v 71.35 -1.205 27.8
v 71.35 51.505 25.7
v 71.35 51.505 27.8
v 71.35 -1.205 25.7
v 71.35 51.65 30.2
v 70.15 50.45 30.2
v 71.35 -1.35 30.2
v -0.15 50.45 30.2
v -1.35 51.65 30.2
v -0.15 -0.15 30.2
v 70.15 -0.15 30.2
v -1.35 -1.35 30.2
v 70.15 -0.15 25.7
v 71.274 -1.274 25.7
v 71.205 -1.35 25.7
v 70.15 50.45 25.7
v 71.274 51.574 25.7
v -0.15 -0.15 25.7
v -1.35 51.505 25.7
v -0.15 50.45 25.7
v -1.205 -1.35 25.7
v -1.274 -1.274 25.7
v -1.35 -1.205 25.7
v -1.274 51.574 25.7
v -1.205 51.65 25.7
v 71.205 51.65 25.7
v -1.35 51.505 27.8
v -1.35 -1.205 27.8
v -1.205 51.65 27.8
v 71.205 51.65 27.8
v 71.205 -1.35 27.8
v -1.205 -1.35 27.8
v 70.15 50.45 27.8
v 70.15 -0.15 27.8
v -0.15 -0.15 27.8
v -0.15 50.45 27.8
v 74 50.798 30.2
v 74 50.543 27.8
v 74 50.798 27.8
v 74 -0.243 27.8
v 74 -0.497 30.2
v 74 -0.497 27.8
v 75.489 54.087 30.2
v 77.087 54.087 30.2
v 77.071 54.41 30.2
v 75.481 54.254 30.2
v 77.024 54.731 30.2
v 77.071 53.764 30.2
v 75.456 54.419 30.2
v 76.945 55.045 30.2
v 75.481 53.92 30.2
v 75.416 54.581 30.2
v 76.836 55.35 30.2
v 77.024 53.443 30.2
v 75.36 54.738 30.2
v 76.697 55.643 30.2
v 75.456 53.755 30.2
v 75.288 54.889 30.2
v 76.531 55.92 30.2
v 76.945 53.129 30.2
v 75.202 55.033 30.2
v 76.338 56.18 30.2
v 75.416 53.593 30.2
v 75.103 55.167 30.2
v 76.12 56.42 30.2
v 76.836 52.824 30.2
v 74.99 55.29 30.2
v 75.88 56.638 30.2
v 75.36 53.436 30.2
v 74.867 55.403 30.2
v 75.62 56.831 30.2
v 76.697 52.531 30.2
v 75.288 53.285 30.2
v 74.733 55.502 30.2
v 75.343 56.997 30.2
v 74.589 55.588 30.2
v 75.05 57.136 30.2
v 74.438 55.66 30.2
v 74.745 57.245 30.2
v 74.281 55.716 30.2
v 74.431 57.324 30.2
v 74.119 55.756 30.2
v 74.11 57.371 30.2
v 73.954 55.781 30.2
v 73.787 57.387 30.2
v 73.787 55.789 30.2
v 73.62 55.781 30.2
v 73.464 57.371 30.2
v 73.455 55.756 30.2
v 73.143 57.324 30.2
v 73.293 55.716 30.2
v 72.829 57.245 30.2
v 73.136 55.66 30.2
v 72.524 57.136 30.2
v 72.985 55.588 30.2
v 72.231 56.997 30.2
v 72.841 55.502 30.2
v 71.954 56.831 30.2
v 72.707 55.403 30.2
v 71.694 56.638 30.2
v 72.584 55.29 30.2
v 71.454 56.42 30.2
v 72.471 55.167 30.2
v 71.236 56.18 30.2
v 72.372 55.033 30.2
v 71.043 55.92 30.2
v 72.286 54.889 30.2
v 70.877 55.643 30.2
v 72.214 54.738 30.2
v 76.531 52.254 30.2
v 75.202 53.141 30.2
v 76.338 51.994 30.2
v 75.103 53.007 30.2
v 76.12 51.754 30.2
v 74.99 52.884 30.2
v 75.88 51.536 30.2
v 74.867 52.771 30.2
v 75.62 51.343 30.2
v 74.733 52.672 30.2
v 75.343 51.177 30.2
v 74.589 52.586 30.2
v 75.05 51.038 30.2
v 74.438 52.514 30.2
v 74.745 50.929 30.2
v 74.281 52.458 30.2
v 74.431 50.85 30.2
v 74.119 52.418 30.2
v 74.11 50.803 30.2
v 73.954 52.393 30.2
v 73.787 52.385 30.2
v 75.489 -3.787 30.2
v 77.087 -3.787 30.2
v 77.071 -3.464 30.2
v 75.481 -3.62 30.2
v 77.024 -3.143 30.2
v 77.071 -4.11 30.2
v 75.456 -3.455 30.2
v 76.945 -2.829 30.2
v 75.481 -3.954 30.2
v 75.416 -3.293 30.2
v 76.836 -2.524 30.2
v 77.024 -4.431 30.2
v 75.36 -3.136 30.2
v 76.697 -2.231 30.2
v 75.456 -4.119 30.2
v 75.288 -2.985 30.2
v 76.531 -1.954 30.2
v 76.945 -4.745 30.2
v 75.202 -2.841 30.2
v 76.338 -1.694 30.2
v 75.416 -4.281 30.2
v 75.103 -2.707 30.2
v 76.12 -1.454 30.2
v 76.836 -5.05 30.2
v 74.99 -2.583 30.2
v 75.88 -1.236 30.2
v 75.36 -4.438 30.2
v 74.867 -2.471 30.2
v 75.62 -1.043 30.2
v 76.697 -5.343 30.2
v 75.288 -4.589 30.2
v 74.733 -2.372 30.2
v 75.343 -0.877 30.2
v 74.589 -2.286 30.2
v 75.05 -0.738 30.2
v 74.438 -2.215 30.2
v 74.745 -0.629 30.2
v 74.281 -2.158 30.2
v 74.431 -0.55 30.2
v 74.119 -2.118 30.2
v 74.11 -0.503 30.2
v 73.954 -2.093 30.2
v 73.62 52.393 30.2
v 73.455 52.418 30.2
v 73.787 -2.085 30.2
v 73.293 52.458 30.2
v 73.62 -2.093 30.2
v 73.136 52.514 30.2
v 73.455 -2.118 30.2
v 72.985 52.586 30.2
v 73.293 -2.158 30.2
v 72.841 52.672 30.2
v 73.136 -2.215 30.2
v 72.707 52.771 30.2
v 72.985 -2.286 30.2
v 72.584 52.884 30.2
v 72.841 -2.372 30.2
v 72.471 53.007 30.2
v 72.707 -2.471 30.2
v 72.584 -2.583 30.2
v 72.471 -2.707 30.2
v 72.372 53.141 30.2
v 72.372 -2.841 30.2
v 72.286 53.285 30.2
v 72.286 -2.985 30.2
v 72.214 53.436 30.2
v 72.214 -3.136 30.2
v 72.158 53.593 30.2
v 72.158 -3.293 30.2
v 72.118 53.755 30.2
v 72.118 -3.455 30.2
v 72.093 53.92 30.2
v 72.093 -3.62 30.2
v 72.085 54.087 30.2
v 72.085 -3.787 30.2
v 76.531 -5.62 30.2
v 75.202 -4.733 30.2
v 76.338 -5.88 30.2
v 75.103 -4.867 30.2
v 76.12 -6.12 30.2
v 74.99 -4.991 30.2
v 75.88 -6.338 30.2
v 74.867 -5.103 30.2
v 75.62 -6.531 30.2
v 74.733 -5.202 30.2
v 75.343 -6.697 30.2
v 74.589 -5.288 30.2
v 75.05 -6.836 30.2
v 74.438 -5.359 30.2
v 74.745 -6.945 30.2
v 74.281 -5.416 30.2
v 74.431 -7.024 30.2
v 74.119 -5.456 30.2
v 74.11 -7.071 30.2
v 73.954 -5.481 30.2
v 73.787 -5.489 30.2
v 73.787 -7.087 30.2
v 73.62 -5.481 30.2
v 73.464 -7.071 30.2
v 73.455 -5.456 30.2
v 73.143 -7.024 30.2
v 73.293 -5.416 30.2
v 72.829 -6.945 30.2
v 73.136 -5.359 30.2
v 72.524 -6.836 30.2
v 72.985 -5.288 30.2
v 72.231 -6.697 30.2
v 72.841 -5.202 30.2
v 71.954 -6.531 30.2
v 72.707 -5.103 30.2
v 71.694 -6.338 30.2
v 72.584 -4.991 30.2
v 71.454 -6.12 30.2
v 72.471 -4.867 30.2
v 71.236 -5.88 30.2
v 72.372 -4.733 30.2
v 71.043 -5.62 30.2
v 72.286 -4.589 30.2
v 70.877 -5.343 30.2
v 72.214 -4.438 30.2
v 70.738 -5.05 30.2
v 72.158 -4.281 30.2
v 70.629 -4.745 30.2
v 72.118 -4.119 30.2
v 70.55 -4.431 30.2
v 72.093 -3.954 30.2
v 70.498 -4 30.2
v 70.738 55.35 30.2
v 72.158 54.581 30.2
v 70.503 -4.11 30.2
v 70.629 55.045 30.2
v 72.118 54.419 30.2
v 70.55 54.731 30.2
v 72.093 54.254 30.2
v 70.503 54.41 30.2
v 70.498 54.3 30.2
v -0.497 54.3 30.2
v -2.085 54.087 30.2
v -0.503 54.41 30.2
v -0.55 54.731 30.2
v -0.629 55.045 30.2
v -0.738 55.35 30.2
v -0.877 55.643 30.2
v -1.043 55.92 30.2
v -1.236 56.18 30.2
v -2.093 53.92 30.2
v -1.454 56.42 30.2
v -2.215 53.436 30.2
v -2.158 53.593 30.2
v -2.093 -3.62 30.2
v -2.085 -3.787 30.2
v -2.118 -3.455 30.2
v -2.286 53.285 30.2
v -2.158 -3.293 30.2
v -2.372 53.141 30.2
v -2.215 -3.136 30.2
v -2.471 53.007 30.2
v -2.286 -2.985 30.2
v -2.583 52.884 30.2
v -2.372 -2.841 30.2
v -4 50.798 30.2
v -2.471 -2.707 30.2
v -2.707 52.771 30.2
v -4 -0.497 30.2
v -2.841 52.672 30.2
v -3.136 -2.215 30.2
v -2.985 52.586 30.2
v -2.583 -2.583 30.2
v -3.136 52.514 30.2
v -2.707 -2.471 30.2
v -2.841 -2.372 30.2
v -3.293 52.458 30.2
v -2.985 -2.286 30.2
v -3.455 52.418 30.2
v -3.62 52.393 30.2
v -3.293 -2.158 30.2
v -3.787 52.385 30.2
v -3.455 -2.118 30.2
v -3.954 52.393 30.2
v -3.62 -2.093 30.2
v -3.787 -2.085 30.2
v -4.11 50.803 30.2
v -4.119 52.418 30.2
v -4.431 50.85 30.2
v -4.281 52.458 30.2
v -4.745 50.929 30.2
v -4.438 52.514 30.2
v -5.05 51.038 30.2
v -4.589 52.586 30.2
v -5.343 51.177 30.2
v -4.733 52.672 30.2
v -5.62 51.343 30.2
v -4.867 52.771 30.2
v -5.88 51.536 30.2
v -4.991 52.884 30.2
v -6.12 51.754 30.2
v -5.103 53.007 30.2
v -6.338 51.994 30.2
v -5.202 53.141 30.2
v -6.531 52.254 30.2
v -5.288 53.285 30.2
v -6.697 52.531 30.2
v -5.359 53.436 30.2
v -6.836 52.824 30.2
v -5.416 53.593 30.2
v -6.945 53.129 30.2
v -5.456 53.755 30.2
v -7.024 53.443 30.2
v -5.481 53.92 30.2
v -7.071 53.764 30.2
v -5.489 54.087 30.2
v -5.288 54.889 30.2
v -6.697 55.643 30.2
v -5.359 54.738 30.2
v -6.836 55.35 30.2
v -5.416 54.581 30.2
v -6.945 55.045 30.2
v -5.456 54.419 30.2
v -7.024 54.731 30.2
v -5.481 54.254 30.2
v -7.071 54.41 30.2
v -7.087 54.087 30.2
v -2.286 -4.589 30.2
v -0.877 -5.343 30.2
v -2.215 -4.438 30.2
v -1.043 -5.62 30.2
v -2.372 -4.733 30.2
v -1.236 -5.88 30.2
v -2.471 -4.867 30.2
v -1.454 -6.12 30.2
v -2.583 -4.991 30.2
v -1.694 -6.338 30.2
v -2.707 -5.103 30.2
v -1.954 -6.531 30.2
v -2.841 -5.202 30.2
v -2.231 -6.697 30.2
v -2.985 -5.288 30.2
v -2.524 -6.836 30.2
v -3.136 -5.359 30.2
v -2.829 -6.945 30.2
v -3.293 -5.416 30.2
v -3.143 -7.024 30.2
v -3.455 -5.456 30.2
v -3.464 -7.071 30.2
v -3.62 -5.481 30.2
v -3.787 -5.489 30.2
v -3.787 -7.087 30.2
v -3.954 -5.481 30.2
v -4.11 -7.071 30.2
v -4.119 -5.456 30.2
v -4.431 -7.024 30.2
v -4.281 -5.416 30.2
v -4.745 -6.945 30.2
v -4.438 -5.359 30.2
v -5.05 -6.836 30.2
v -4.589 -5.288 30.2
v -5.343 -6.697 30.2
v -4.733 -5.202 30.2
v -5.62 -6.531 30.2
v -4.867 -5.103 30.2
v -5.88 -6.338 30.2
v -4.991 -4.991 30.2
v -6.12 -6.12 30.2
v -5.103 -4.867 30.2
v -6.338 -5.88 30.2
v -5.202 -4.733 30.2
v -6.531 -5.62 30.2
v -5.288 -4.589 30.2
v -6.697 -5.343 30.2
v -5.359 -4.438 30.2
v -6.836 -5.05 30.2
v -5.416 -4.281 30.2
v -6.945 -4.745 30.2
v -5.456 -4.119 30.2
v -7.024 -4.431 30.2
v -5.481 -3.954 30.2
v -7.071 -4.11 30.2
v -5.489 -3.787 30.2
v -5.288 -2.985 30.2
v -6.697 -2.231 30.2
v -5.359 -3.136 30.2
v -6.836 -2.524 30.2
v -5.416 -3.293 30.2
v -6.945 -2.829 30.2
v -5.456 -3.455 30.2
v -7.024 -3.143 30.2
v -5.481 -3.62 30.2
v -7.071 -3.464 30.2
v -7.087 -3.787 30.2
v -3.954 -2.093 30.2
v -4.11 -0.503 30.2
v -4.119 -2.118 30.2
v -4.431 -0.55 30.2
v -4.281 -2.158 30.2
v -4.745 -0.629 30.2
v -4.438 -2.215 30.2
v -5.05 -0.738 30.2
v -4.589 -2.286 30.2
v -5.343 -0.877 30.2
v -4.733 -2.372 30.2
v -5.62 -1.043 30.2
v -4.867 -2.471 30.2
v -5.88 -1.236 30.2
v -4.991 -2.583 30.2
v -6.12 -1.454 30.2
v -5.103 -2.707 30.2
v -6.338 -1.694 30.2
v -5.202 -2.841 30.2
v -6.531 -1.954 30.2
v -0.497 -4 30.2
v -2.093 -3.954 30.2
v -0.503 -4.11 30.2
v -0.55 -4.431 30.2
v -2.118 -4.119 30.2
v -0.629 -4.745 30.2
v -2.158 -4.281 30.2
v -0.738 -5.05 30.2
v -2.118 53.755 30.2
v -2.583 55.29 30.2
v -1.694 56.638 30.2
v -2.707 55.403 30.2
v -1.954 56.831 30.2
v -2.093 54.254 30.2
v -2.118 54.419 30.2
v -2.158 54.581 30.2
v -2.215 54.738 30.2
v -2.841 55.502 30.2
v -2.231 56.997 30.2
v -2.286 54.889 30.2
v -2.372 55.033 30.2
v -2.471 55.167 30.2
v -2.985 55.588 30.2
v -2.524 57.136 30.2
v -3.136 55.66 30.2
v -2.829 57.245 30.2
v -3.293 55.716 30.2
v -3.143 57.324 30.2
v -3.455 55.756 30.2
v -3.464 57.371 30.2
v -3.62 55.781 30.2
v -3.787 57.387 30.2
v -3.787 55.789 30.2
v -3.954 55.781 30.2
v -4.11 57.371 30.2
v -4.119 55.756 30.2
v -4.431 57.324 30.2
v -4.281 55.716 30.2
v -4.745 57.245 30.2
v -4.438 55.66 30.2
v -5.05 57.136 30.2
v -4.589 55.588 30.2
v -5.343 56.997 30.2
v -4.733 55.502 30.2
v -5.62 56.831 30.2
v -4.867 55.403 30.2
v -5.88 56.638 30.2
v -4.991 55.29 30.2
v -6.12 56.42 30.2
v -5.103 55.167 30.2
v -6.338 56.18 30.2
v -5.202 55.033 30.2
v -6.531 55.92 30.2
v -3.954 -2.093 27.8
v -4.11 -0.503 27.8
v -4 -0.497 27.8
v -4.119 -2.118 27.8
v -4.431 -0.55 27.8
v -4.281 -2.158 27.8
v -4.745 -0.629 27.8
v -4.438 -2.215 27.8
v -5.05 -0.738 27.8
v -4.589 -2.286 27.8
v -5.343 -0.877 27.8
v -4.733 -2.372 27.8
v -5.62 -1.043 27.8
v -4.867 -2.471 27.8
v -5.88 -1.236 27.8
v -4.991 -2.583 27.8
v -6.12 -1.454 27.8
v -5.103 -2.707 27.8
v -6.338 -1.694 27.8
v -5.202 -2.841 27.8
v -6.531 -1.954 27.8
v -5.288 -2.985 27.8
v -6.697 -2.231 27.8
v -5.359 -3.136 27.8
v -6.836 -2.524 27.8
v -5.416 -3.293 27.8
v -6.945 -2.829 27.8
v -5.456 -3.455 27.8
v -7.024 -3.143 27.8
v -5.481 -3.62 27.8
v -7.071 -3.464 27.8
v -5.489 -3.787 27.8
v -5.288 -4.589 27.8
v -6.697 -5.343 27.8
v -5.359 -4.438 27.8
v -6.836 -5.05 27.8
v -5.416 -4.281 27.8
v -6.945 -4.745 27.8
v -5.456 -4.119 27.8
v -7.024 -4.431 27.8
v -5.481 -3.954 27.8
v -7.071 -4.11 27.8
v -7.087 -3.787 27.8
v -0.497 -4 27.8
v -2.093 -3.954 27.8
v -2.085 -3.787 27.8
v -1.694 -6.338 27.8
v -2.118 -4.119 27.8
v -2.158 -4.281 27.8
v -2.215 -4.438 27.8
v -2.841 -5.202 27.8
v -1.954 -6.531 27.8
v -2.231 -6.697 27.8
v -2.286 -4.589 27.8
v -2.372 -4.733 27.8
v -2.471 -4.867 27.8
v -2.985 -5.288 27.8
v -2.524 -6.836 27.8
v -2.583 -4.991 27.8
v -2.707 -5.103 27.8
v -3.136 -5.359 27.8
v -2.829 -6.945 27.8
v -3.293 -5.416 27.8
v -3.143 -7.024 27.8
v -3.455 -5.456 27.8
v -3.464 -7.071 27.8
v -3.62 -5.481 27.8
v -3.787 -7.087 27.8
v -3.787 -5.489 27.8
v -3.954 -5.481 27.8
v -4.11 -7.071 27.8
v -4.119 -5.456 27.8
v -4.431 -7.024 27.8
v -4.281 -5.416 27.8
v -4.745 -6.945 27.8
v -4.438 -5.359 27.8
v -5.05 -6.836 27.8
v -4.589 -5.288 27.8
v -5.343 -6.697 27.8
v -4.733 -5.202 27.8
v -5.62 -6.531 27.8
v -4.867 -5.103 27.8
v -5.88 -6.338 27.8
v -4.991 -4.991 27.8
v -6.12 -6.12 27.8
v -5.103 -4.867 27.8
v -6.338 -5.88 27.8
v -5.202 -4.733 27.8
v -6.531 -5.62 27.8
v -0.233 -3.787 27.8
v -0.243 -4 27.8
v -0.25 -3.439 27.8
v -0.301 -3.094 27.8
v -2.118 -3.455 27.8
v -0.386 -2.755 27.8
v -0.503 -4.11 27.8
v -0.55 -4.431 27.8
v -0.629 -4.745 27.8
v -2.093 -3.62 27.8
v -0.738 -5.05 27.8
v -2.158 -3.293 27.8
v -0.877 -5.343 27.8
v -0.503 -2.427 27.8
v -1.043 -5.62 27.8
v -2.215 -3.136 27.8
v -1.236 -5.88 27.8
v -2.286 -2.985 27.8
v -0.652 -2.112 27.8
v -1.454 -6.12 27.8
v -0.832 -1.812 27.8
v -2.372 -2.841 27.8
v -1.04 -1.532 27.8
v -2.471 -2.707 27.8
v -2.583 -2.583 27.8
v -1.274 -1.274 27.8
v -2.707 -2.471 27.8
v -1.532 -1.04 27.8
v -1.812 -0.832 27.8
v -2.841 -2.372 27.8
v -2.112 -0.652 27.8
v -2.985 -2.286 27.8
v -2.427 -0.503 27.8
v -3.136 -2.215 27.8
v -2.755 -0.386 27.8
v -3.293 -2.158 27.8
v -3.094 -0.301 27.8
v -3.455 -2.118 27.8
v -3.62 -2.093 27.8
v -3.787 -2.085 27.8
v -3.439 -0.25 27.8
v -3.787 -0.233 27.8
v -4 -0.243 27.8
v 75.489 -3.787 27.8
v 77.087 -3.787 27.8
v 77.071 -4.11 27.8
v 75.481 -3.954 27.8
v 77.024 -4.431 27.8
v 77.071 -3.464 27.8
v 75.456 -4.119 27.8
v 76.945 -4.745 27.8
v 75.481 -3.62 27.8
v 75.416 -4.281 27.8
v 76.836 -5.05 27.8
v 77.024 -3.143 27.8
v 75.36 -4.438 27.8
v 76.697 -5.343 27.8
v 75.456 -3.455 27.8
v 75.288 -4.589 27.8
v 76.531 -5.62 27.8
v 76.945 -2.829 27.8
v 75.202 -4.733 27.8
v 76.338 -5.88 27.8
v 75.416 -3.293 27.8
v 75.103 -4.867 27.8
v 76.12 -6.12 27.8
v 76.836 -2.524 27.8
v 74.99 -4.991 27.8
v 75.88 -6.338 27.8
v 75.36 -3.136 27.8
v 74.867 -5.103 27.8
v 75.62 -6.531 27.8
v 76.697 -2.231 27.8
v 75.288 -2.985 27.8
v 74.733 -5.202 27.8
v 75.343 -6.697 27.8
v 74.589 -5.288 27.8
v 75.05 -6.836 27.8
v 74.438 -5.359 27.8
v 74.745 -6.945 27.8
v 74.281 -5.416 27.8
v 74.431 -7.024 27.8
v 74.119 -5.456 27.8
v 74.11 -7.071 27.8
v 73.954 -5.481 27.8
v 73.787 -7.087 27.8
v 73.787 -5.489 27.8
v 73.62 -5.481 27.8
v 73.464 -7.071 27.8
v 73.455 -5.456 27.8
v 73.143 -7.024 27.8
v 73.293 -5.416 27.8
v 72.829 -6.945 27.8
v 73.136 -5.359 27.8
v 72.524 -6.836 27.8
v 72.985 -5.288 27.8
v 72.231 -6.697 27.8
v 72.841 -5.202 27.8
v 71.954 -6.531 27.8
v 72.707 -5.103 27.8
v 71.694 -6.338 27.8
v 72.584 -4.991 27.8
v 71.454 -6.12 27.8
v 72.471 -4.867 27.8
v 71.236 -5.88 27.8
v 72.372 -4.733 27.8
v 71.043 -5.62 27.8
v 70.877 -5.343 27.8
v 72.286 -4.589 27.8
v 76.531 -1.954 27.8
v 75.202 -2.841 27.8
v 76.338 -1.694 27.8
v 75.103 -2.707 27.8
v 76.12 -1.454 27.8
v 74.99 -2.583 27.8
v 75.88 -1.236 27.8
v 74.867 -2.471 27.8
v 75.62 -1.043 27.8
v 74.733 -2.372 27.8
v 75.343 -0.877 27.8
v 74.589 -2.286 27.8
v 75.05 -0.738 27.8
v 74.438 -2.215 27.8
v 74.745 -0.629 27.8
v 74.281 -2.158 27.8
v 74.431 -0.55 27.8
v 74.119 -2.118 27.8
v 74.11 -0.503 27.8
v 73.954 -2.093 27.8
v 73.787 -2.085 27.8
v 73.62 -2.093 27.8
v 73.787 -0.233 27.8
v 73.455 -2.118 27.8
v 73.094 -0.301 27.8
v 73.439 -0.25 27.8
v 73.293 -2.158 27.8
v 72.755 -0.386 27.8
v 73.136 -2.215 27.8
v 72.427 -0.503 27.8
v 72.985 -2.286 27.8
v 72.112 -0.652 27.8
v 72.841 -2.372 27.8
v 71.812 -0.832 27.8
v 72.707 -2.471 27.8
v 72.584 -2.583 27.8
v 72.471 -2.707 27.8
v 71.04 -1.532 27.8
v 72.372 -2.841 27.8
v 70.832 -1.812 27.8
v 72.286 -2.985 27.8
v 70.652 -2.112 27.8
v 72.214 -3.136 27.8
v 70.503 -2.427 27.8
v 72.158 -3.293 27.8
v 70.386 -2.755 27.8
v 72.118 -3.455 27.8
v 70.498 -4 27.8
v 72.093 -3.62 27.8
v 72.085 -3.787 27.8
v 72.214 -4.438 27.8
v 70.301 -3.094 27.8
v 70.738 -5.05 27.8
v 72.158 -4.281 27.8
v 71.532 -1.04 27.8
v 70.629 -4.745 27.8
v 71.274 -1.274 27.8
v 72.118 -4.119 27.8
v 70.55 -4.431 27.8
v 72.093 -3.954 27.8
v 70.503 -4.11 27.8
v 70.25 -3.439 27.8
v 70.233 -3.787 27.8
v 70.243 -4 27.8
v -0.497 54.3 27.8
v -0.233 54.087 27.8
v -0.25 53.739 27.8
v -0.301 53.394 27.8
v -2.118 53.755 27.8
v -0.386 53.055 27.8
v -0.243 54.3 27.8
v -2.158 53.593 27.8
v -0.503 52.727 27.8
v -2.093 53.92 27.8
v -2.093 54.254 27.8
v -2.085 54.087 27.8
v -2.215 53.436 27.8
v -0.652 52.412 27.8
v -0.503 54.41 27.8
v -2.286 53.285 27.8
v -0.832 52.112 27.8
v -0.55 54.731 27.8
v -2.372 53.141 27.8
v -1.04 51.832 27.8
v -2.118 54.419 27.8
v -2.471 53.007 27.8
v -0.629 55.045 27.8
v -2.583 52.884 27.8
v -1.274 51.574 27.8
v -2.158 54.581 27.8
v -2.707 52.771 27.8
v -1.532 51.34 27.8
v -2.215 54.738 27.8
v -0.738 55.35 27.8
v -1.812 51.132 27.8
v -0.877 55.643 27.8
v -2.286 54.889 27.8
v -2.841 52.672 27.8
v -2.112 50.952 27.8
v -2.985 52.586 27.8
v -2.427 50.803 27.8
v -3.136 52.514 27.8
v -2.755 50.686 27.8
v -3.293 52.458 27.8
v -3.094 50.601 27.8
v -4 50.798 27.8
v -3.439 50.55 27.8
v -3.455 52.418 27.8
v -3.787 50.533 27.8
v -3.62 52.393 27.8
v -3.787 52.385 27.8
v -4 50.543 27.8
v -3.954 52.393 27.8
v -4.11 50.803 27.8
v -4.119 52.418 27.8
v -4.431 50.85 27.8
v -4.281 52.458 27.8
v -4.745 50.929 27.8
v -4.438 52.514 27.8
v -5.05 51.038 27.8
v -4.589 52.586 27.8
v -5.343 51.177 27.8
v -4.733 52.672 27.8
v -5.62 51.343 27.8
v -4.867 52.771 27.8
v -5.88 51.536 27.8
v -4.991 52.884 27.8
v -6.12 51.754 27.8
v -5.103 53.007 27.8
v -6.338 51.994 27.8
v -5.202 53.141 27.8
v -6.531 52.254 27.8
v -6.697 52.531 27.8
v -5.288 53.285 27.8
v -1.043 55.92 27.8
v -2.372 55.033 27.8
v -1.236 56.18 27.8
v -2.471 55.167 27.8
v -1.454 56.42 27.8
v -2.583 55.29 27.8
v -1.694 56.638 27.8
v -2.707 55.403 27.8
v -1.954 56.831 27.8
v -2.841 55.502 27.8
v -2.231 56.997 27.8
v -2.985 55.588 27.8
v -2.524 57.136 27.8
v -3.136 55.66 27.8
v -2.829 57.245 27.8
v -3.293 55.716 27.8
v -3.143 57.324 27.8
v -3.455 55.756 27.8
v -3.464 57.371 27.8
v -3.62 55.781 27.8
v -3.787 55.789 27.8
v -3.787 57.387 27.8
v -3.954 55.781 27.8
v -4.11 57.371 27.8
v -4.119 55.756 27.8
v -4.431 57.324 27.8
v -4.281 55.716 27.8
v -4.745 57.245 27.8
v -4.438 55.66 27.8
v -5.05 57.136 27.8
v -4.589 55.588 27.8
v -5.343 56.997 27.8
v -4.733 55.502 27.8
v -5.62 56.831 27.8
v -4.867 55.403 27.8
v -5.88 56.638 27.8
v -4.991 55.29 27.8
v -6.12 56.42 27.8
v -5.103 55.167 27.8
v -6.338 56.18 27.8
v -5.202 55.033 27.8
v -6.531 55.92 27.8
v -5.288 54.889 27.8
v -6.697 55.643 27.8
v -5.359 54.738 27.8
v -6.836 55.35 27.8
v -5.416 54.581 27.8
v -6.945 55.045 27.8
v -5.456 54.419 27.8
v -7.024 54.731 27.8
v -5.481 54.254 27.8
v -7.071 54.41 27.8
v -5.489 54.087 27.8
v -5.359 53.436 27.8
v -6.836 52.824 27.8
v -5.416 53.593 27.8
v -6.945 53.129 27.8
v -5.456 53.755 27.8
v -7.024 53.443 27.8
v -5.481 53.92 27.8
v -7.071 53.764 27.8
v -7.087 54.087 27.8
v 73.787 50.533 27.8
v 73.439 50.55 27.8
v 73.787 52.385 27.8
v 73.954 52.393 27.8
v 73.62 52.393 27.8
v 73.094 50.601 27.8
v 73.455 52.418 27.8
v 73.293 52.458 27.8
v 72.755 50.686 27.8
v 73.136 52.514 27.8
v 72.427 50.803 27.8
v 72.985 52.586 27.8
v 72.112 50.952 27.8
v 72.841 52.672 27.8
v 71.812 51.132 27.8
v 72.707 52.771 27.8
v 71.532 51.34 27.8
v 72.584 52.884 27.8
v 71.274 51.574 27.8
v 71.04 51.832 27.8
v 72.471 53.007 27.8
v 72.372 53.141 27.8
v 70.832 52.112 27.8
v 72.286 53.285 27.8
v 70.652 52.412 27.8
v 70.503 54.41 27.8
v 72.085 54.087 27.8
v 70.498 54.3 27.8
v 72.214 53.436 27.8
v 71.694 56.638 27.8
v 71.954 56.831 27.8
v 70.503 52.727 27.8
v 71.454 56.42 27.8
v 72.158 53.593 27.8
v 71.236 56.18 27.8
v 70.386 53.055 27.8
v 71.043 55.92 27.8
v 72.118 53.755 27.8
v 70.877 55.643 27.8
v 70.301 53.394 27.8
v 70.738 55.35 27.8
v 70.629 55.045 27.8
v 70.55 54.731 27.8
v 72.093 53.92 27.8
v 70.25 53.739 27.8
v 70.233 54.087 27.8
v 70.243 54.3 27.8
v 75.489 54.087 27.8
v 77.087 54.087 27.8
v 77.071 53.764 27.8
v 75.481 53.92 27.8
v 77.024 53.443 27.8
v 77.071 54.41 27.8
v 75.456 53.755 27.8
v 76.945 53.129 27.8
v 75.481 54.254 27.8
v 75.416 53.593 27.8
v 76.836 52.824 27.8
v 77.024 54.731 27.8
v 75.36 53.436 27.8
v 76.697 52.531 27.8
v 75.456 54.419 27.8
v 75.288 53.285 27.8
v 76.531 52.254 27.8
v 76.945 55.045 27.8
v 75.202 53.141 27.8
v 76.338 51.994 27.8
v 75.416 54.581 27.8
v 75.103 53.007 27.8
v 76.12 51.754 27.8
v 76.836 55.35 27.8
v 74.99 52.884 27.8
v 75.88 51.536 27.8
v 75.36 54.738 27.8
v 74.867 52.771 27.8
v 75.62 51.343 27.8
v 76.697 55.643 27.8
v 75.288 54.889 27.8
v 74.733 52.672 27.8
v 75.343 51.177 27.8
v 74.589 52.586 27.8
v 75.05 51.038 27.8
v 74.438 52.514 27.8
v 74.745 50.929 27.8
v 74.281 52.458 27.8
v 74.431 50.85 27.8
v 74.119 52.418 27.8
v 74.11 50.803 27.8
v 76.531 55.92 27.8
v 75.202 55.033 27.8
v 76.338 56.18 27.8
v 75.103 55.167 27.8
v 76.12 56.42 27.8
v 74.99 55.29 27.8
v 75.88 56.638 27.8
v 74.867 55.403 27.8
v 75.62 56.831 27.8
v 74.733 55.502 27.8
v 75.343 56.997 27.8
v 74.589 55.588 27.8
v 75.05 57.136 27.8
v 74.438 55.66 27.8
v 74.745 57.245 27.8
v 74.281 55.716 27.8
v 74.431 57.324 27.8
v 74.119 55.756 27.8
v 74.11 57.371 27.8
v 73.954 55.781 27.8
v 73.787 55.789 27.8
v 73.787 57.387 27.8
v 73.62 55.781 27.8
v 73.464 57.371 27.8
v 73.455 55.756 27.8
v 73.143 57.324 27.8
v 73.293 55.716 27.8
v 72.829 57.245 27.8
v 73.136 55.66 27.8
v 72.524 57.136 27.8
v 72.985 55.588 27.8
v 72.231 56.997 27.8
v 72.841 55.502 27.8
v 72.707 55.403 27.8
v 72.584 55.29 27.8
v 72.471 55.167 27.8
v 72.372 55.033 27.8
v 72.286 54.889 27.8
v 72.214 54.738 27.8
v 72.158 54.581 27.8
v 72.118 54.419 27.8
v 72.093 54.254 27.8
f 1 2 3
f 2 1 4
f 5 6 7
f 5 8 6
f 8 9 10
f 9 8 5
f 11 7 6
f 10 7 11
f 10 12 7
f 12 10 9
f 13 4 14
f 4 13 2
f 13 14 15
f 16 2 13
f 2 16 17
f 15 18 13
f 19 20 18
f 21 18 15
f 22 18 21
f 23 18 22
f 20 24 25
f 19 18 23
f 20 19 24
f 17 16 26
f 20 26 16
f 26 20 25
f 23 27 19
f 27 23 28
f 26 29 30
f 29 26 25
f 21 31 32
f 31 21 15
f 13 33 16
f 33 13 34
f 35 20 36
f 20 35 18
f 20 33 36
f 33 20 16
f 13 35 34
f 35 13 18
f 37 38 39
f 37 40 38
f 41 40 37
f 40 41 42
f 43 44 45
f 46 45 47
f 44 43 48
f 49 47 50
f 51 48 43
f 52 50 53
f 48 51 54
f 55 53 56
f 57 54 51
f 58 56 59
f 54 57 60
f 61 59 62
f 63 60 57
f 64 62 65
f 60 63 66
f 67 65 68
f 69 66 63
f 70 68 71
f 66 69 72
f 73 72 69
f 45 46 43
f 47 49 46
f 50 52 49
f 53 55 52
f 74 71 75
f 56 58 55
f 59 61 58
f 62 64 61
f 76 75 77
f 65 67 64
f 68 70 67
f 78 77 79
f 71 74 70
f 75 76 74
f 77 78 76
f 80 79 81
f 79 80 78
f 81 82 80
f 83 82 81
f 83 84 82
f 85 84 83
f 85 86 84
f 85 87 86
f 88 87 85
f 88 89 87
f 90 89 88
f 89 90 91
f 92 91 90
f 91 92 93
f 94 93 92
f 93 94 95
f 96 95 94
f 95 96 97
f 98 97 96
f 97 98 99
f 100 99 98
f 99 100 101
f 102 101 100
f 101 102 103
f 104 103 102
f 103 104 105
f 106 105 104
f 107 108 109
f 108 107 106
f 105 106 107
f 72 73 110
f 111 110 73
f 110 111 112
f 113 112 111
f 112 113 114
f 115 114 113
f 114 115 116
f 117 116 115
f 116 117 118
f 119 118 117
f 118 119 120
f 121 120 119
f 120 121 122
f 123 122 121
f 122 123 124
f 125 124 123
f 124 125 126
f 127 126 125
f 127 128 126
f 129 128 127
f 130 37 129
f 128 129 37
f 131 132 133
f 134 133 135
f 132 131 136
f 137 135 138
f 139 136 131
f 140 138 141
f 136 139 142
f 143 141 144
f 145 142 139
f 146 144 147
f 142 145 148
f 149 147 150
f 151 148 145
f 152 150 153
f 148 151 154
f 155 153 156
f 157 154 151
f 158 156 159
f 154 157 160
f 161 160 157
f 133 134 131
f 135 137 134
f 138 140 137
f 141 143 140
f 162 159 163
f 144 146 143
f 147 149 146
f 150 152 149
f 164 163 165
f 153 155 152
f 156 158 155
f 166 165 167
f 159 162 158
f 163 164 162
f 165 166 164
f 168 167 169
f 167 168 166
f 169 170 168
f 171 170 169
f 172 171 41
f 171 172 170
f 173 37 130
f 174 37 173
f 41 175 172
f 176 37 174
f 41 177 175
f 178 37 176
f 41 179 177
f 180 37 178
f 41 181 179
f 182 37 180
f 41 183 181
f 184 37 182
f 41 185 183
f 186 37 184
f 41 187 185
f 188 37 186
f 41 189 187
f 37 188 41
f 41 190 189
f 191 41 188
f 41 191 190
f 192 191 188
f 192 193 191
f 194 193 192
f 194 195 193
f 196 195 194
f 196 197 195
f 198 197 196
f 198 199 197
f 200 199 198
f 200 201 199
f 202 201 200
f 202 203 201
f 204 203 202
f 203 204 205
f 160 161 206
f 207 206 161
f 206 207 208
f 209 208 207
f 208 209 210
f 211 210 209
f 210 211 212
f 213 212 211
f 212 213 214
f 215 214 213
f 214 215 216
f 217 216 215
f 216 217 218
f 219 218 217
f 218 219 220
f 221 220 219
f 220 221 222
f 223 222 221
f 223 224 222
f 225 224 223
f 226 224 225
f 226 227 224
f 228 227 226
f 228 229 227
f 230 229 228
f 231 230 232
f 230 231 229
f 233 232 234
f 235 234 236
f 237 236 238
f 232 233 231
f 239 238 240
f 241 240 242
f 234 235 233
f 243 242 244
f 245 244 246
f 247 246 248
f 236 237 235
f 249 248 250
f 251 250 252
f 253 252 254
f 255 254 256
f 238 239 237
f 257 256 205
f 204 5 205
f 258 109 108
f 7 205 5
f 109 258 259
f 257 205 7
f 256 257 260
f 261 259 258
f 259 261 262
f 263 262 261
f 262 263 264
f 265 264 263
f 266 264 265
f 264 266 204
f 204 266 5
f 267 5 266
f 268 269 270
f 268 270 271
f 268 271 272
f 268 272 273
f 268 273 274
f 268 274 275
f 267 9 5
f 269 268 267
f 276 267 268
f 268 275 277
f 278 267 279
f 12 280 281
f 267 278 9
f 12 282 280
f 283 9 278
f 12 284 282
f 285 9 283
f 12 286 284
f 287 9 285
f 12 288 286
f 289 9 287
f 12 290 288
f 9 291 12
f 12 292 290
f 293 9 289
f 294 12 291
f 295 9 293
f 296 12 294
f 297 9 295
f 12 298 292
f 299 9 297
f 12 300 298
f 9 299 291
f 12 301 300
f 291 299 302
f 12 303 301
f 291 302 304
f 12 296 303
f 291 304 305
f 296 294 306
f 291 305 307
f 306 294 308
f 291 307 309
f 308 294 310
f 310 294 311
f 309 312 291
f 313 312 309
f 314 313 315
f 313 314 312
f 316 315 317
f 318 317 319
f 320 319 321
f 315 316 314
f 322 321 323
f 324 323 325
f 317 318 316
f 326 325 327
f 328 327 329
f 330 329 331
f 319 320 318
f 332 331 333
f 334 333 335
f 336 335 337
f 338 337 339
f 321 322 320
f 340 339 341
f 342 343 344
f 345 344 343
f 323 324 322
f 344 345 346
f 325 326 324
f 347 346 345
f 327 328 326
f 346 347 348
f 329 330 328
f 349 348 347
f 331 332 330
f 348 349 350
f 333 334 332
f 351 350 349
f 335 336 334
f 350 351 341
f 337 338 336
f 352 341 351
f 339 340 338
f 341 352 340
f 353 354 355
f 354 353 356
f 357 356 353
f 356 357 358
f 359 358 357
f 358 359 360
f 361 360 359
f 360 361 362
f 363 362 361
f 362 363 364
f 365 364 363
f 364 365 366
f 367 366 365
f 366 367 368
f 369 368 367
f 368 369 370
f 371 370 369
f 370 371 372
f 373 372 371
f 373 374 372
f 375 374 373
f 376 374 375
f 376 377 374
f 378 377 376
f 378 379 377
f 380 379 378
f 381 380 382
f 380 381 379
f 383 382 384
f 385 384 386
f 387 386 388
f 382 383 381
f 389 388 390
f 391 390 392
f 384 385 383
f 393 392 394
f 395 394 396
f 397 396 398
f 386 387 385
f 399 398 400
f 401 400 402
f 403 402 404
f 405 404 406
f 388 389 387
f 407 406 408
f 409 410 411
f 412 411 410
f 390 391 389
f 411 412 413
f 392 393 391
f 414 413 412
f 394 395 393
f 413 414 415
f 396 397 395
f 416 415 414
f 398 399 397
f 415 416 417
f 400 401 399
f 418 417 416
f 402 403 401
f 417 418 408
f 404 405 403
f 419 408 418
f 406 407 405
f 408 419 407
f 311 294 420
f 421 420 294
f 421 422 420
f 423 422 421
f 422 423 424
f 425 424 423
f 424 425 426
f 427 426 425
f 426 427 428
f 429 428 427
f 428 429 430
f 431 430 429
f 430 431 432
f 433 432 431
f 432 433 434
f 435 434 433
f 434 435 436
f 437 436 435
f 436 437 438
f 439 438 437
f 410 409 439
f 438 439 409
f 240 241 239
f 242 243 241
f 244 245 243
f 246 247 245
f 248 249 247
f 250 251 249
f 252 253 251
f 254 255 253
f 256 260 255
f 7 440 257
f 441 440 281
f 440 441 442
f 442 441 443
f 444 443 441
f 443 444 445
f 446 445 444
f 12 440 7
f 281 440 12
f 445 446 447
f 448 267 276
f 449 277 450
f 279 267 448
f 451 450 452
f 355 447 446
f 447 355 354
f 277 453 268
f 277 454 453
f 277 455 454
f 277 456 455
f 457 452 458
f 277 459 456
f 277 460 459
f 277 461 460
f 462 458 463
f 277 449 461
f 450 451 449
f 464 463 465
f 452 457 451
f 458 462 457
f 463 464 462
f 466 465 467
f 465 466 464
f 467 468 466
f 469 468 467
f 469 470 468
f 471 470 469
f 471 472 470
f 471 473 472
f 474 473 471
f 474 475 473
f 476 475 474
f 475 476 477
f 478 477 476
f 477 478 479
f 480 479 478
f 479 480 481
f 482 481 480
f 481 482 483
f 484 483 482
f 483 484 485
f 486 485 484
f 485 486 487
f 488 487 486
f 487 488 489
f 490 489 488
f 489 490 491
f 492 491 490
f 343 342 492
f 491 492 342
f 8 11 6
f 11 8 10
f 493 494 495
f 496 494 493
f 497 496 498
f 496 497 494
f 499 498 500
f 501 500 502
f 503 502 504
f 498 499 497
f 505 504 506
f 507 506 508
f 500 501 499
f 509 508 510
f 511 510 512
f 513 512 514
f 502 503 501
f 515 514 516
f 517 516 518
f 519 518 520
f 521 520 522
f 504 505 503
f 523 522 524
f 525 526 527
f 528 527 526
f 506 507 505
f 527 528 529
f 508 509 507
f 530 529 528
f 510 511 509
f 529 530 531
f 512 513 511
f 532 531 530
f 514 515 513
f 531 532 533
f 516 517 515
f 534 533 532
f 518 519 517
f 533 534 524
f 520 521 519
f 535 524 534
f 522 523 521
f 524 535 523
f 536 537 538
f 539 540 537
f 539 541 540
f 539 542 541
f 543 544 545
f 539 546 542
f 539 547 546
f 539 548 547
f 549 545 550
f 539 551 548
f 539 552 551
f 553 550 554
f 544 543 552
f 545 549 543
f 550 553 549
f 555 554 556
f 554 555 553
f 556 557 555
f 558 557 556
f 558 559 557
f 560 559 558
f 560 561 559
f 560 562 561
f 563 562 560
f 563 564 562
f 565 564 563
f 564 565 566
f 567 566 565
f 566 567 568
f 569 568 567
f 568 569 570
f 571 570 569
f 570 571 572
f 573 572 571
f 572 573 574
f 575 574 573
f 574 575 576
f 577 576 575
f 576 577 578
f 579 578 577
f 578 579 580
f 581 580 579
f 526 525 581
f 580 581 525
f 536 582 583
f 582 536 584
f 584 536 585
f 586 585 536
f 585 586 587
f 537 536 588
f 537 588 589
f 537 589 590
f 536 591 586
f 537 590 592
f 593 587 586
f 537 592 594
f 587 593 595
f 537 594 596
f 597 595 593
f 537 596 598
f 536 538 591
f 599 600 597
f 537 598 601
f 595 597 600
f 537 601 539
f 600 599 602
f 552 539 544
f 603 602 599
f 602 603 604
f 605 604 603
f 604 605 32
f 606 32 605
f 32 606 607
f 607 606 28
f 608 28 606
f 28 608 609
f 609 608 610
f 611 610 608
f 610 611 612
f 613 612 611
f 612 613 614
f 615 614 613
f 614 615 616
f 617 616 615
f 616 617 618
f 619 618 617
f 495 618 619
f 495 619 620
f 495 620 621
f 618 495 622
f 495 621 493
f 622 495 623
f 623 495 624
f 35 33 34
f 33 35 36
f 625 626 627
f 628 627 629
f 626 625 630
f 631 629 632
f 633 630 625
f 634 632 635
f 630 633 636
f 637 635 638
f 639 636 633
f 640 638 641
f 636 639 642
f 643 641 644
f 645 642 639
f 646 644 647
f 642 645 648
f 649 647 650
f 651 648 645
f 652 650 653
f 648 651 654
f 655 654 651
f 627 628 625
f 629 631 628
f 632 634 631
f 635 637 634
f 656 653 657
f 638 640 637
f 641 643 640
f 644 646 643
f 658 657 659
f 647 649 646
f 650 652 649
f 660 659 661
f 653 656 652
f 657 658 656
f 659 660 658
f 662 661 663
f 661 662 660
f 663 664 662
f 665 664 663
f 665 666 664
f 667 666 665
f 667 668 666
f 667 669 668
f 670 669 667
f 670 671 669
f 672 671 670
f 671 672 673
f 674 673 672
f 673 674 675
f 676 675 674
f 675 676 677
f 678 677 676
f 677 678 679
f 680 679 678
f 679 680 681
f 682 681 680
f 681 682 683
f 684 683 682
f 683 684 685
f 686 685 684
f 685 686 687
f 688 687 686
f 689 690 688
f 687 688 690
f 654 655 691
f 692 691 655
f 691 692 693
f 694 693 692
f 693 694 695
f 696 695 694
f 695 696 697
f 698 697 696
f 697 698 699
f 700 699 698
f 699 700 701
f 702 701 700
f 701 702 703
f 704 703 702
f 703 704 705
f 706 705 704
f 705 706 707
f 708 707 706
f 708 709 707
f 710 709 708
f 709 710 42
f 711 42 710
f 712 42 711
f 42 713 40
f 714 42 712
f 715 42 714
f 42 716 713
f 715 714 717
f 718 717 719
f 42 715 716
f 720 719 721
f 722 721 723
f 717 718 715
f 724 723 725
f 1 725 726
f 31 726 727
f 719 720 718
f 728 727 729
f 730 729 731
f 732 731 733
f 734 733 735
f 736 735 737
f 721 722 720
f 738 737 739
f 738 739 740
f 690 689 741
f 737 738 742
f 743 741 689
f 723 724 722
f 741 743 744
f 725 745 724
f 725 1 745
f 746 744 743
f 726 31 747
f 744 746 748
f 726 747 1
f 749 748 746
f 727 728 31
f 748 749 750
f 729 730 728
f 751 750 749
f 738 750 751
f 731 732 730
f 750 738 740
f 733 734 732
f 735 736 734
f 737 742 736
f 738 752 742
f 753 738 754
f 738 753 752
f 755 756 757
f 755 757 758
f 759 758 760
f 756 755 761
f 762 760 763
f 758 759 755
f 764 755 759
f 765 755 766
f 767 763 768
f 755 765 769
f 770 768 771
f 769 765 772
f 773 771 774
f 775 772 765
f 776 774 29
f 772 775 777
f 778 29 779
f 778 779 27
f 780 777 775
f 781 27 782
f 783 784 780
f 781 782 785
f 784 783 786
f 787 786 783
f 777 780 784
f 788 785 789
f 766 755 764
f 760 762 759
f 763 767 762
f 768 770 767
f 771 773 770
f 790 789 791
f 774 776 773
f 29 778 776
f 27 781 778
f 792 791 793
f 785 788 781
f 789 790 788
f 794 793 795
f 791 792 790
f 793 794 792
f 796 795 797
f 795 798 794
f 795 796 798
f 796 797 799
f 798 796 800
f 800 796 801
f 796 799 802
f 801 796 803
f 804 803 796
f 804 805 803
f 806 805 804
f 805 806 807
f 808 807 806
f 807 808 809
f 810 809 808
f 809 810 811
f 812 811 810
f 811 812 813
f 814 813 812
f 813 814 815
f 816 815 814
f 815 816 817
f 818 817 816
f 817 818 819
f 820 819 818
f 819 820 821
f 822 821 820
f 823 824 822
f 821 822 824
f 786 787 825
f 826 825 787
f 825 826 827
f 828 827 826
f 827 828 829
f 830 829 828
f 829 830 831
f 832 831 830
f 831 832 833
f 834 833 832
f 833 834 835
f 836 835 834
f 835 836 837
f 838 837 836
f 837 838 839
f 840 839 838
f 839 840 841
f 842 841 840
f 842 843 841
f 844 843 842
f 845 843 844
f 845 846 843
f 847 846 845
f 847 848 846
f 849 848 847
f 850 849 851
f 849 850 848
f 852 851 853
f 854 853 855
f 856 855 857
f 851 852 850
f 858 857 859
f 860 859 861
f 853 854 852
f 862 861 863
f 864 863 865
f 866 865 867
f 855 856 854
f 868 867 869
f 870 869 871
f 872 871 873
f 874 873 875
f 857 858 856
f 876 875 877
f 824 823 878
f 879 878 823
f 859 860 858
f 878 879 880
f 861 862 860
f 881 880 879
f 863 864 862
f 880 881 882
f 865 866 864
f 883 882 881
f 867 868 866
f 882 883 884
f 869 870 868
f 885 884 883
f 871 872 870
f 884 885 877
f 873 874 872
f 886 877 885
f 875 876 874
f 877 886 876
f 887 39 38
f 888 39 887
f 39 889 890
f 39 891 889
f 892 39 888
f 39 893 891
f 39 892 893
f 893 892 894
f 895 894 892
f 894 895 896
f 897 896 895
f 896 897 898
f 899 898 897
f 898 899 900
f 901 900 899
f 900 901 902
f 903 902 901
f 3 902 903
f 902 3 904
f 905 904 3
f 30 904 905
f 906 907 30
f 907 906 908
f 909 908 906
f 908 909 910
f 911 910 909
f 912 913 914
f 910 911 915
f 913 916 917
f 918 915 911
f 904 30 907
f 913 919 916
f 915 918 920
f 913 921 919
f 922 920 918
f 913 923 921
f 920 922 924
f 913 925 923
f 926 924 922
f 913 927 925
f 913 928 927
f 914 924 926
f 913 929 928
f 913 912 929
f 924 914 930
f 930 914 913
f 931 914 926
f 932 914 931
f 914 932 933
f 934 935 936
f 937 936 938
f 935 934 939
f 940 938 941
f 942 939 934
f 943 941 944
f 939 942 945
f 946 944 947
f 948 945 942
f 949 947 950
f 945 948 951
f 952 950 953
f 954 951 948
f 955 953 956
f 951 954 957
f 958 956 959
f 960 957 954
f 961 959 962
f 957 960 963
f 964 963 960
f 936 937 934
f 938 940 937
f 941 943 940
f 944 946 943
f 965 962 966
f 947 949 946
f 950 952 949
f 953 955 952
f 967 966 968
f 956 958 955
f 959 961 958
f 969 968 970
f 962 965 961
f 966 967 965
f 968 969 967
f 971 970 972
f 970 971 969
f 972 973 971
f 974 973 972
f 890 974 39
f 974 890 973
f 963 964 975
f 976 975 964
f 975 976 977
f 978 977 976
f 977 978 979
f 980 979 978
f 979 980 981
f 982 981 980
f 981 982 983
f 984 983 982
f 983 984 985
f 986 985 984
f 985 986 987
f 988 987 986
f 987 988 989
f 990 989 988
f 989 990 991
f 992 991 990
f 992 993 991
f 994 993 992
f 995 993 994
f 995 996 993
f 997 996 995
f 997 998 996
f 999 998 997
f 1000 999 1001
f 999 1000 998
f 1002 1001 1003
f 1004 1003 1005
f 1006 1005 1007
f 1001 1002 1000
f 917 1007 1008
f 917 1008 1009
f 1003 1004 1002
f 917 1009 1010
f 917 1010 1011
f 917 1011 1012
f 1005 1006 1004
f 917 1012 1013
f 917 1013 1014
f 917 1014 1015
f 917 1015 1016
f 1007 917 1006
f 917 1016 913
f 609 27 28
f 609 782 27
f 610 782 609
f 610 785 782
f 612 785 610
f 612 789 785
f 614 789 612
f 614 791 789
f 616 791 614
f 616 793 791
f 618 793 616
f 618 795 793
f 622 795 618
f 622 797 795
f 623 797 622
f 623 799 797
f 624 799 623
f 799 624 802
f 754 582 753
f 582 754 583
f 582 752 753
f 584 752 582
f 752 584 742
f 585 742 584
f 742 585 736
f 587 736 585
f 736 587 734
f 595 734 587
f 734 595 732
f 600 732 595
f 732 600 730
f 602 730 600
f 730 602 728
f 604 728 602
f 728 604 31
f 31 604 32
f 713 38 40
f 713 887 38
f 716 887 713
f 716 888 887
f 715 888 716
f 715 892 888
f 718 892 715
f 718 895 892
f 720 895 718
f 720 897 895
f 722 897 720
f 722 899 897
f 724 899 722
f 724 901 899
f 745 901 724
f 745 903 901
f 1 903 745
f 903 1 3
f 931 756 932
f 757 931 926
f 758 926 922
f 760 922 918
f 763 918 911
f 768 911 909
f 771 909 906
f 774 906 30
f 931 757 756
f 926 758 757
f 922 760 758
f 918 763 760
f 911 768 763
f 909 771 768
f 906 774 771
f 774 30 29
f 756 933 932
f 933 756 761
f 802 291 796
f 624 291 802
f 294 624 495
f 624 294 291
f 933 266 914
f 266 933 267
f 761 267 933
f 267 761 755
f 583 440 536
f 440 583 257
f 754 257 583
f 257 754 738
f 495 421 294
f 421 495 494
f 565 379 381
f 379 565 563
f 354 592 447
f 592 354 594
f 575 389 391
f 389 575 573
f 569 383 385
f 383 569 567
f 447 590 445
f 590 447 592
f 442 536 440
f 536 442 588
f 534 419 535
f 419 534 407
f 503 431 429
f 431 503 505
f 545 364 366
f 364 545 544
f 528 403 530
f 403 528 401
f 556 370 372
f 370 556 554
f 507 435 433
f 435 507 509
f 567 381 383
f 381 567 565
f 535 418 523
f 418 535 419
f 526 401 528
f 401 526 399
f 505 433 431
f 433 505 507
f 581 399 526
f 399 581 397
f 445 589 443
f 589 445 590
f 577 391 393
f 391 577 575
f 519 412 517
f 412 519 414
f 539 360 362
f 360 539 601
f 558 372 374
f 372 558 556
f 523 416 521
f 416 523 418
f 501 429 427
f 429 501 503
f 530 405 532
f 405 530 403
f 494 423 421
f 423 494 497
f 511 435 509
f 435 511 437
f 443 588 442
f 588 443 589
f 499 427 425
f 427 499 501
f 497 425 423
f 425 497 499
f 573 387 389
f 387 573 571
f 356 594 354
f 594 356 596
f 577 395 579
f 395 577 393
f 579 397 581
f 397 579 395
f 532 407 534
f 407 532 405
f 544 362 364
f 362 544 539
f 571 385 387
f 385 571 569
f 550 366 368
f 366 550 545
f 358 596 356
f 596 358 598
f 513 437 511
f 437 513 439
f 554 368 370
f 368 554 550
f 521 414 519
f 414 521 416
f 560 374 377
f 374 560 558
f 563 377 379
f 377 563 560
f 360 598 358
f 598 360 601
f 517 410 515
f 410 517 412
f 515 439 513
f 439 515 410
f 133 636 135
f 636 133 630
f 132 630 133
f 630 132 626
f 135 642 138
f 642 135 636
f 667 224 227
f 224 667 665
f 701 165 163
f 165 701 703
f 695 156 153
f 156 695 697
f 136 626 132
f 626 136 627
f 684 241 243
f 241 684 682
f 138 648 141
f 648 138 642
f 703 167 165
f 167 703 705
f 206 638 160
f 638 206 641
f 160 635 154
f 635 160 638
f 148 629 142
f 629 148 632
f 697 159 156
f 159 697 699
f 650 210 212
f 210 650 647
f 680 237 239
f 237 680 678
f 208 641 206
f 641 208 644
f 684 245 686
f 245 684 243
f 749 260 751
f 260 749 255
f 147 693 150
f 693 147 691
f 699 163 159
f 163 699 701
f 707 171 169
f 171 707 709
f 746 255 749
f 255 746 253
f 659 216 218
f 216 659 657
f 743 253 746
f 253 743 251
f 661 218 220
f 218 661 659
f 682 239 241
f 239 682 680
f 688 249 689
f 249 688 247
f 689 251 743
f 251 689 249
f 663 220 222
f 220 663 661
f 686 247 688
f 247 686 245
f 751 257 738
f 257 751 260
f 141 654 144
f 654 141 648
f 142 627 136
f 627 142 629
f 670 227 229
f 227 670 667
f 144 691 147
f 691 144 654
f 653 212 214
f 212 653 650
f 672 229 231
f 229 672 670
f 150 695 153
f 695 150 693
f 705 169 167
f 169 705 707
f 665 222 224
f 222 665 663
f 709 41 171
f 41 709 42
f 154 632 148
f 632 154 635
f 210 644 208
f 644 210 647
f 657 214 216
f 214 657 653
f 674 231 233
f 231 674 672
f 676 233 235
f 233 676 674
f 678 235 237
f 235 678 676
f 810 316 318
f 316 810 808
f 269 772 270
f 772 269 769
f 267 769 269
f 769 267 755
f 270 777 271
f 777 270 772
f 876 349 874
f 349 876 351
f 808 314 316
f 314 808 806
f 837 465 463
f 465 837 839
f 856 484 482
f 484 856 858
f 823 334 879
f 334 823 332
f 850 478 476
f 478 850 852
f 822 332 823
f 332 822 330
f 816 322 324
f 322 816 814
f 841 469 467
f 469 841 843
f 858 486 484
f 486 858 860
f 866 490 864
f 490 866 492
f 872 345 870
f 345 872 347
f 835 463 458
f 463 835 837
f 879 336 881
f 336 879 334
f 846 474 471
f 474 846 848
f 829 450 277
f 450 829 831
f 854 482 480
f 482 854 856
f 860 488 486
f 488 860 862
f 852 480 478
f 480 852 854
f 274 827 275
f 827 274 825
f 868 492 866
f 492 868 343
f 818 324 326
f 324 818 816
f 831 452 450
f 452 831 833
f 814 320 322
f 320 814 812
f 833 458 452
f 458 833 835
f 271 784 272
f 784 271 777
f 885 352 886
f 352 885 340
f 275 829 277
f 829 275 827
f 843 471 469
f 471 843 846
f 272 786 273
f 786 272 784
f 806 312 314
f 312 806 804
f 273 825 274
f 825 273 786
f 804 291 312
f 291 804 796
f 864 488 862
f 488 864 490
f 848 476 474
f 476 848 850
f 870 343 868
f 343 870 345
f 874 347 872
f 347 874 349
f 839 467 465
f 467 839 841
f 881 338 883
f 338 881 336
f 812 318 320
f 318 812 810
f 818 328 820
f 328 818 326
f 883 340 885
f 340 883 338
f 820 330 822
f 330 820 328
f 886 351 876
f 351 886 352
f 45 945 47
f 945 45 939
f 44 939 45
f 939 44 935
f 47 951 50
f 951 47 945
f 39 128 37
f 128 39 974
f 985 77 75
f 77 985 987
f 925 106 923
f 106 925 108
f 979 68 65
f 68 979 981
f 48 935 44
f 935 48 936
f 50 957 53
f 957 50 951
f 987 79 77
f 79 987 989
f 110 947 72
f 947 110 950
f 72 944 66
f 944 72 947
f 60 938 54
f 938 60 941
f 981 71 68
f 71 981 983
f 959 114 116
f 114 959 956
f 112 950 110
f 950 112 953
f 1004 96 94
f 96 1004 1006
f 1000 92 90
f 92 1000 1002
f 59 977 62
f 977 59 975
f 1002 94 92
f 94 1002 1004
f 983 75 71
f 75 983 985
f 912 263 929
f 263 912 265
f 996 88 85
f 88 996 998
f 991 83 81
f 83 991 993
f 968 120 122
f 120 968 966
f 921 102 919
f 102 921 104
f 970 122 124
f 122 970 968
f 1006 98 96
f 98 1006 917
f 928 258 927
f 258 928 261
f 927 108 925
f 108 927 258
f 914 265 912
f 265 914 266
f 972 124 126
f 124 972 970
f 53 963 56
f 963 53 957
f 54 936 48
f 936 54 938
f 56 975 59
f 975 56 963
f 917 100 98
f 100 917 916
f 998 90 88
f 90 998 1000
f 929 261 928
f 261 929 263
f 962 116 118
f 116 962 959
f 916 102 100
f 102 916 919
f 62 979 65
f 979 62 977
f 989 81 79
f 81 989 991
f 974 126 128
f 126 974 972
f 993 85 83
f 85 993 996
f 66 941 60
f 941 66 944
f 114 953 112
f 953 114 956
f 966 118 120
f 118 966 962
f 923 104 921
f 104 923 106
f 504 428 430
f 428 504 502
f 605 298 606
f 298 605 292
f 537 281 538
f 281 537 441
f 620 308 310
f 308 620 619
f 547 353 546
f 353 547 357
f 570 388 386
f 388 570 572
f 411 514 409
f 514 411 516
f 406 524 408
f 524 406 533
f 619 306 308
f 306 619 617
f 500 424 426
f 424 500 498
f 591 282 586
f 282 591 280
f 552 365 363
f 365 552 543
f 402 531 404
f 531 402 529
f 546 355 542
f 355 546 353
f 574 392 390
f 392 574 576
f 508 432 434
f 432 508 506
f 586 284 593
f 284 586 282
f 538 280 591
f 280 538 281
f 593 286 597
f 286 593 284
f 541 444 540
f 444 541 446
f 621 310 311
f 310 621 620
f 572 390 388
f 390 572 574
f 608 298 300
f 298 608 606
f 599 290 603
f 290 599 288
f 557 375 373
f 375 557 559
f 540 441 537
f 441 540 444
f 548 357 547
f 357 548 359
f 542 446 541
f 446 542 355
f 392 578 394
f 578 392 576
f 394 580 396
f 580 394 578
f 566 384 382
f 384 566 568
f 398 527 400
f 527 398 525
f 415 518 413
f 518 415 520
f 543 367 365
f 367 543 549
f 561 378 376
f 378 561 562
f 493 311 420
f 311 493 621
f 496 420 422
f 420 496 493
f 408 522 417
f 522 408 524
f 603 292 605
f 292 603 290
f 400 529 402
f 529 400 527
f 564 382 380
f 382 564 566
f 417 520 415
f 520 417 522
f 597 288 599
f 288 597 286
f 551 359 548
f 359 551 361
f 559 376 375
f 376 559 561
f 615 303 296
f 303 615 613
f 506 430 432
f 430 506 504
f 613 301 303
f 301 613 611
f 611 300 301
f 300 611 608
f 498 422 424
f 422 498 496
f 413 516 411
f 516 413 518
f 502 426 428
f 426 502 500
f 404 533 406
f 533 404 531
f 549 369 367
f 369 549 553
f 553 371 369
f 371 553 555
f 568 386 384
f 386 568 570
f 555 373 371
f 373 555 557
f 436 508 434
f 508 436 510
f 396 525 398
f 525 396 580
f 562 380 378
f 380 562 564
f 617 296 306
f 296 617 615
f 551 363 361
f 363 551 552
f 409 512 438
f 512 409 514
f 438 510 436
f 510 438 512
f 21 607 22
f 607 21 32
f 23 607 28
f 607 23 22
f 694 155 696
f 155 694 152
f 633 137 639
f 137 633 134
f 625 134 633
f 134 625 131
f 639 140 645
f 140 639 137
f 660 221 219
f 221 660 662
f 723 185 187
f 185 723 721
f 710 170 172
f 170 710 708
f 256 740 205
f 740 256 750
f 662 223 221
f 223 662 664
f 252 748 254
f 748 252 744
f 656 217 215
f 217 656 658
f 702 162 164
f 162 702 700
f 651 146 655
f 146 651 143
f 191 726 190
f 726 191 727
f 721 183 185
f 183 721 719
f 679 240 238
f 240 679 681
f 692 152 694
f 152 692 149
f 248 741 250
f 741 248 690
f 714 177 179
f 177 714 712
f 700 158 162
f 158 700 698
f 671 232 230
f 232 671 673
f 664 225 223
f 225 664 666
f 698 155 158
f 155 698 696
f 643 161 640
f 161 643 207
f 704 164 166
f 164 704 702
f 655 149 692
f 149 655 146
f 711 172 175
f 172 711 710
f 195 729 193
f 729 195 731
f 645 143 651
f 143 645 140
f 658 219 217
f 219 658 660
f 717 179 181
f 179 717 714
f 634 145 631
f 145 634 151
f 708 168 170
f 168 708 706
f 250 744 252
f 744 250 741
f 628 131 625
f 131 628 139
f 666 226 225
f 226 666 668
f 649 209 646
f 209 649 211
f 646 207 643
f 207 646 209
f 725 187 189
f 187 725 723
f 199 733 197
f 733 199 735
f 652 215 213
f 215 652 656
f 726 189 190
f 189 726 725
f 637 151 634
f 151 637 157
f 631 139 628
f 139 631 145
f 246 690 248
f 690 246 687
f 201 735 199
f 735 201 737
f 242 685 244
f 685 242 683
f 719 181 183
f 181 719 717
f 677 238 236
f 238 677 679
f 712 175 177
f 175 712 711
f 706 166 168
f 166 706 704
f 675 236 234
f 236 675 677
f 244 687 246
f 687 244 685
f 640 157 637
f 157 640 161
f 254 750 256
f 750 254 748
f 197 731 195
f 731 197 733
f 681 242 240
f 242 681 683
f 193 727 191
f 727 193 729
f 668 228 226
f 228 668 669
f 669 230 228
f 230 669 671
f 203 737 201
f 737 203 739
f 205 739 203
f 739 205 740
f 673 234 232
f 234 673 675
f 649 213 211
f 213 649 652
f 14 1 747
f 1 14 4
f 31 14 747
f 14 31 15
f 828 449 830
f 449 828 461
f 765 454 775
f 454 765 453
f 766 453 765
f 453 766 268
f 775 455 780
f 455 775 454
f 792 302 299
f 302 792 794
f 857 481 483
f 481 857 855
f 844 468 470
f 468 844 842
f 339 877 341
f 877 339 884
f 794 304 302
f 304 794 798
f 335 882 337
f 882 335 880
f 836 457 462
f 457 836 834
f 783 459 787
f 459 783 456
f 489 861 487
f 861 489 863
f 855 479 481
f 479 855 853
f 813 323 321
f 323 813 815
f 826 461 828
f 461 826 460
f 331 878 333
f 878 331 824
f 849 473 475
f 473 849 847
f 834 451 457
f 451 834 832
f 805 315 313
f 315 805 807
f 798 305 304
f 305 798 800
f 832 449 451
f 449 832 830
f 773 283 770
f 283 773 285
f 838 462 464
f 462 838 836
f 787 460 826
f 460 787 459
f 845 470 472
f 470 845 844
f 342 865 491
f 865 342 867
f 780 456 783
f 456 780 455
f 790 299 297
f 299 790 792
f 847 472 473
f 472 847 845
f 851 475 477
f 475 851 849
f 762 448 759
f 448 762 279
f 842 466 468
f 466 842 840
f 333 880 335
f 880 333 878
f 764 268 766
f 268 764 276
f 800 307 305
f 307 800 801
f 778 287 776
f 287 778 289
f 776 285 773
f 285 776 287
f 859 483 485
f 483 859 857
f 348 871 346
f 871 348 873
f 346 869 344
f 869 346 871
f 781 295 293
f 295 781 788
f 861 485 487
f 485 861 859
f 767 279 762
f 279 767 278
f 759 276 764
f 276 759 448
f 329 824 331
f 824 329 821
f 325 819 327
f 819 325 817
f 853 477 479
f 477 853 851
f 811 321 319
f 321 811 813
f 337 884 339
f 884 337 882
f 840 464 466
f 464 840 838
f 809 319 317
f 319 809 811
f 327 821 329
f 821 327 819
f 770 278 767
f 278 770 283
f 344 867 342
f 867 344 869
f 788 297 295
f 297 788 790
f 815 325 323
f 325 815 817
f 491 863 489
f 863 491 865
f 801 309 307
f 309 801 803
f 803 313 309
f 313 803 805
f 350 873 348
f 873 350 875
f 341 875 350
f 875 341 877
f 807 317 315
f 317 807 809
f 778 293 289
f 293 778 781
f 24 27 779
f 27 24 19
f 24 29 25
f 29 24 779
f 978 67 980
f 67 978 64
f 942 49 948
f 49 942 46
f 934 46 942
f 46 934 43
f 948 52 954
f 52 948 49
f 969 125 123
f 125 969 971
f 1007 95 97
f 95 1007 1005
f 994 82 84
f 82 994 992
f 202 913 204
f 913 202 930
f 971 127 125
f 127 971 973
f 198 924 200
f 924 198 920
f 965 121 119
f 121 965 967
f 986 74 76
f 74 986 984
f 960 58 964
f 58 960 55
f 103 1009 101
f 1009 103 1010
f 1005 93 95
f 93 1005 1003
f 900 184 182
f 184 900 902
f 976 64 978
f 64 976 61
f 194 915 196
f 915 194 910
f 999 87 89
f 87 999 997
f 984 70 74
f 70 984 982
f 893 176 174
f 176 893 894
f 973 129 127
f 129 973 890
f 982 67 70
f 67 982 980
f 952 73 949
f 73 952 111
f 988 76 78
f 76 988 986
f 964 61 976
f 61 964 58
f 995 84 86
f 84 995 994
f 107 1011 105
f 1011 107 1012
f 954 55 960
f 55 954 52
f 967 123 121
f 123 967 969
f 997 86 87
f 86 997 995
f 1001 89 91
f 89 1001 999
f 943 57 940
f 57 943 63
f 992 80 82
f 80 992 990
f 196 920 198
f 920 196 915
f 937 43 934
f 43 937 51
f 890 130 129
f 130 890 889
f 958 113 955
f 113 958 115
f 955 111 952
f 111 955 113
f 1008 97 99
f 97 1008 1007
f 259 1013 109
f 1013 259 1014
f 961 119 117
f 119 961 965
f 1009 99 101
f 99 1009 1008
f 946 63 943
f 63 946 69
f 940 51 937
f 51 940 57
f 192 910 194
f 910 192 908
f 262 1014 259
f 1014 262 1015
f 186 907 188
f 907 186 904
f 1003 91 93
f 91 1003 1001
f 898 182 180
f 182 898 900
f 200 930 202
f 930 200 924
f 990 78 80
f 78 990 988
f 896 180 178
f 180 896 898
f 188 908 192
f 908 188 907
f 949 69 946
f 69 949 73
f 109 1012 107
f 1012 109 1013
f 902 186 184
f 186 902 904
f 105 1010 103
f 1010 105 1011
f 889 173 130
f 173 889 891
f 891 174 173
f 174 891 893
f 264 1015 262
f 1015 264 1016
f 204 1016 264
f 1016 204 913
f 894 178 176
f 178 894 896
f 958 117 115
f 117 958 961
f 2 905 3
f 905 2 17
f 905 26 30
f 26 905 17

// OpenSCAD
// body lid
difference() {
  union() {
    // body lid (lid_plate)
    multmatrix([[1, 0, 0, 35], [0, 1, 0, 25.15], [0, 0, 1, 27.8], [0, 0, 0, 1]]) translate([-39, -29.15, 0]) cube([78, 58.3, 2.4]);
    // add lid_lip (lip)
    multmatrix([[1, 0, 0, 35], [0, 1, 0, 25.15], [0, 0, 1, 25.7], [0, 0, 0, 1]]) difference() { translate([-36.35, -26.5, 0]) cube([72.7, 53, 4.5]); translate([0, 0, -1]) translate([-35.15, -25.3, 0]) cube([70.3, 50.6, 6.5]); }
    // add boss_1_pad (pad)
    multmatrix([[1, 0, 0, -3.787006], [0, 1, 0, -3.787006], [0, 0, 1, 27.8], [0, 0, 0, 1]]) cylinder(h=2.4, d=6.6, $fn=64);
    // add boss_2_pad (pad)
    multmatrix([[1, 0, 0, 73.787006], [0, 1, 0, -3.787006], [0, 0, 1, 27.8], [0, 0, 0, 1]]) cylinder(h=2.4, d=6.6, $fn=64);
    // add boss_3_pad (pad)
    multmatrix([[1, 0, 0, -3.787006], [0, 1, 0, 54.087006], [0, 0, 1, 27.8], [0, 0, 0, 1]]) cylinder(h=2.4, d=6.6, $fn=64);
    // add boss_4_pad (pad)
    multmatrix([[1, 0, 0, 73.787006], [0, 1, 0, 54.087006], [0, 0, 1, 27.8], [0, 0, 0, 1]]) cylinder(h=2.4, d=6.6, $fn=64);
  }
  // cut boss_1_lid_hole (screw_hole)
  multmatrix([[1, 0, 0, -3.787006], [0, 1, 0, -3.787006], [0, 0, 1, 26.8], [0, 0, 0, 1]]) cylinder(h=4.4, d=3.4041, $fn=64);
  // cut boss_1_lip_notch (lip_notch)
  multmatrix([[1, 0, 0, -3.787006], [0, 1, 0, -3.787006], [0, 0, 1, 24.7], [0, 0, 0, 1]]) cylinder(h=3.1, d=7.108563, $fn=64);
  // cut boss_2_lid_hole (screw_hole)
  multmatrix([[1, 0, 0, 73.787006], [0, 1, 0, -3.787006], [0, 0, 1, 26.8], [0, 0, 0, 1]]) cylinder(h=4.4, d=3.4041, $fn=64);
  // cut boss_2_lip_notch (lip_notch)
  multmatrix([[1, 0, 0, 73.787006], [0, 1, 0, -3.787006], [0, 0, 1, 24.7], [0, 0, 0, 1]]) cylinder(h=3.1, d=7.108563, $fn=64);
  // cut boss_3_lid_hole (screw_hole)
  multmatrix([[1, 0, 0, -3.787006], [0, 1, 0, 54.087006], [0, 0, 1, 26.8], [0, 0, 0, 1]]) cylinder(h=4.4, d=3.4041, $fn=64);
  // cut boss_3_lip_notch (lip_notch)
  multmatrix([[1, 0, 0, -3.787006], [0, 1, 0, 54.087006], [0, 0, 1, 24.7], [0, 0, 0, 1]]) cylinder(h=3.1, d=7.108563, $fn=64);
  // cut boss_4_lid_hole (screw_hole)
  multmatrix([[1, 0, 0, 73.787006], [0, 1, 0, 54.087006], [0, 0, 1, 26.8], [0, 0, 0, 1]]) cylinder(h=4.4, d=3.4041, $fn=64);
  // cut boss_4_lip_notch (lip_notch)
  multmatrix([[1, 0, 0, 73.787006], [0, 1, 0, 54.087006], [0, 0, 1, 24.7], [0, 0, 0, 1]]) cylinder(h=3.1, d=7.108563, $fn=64);
}
